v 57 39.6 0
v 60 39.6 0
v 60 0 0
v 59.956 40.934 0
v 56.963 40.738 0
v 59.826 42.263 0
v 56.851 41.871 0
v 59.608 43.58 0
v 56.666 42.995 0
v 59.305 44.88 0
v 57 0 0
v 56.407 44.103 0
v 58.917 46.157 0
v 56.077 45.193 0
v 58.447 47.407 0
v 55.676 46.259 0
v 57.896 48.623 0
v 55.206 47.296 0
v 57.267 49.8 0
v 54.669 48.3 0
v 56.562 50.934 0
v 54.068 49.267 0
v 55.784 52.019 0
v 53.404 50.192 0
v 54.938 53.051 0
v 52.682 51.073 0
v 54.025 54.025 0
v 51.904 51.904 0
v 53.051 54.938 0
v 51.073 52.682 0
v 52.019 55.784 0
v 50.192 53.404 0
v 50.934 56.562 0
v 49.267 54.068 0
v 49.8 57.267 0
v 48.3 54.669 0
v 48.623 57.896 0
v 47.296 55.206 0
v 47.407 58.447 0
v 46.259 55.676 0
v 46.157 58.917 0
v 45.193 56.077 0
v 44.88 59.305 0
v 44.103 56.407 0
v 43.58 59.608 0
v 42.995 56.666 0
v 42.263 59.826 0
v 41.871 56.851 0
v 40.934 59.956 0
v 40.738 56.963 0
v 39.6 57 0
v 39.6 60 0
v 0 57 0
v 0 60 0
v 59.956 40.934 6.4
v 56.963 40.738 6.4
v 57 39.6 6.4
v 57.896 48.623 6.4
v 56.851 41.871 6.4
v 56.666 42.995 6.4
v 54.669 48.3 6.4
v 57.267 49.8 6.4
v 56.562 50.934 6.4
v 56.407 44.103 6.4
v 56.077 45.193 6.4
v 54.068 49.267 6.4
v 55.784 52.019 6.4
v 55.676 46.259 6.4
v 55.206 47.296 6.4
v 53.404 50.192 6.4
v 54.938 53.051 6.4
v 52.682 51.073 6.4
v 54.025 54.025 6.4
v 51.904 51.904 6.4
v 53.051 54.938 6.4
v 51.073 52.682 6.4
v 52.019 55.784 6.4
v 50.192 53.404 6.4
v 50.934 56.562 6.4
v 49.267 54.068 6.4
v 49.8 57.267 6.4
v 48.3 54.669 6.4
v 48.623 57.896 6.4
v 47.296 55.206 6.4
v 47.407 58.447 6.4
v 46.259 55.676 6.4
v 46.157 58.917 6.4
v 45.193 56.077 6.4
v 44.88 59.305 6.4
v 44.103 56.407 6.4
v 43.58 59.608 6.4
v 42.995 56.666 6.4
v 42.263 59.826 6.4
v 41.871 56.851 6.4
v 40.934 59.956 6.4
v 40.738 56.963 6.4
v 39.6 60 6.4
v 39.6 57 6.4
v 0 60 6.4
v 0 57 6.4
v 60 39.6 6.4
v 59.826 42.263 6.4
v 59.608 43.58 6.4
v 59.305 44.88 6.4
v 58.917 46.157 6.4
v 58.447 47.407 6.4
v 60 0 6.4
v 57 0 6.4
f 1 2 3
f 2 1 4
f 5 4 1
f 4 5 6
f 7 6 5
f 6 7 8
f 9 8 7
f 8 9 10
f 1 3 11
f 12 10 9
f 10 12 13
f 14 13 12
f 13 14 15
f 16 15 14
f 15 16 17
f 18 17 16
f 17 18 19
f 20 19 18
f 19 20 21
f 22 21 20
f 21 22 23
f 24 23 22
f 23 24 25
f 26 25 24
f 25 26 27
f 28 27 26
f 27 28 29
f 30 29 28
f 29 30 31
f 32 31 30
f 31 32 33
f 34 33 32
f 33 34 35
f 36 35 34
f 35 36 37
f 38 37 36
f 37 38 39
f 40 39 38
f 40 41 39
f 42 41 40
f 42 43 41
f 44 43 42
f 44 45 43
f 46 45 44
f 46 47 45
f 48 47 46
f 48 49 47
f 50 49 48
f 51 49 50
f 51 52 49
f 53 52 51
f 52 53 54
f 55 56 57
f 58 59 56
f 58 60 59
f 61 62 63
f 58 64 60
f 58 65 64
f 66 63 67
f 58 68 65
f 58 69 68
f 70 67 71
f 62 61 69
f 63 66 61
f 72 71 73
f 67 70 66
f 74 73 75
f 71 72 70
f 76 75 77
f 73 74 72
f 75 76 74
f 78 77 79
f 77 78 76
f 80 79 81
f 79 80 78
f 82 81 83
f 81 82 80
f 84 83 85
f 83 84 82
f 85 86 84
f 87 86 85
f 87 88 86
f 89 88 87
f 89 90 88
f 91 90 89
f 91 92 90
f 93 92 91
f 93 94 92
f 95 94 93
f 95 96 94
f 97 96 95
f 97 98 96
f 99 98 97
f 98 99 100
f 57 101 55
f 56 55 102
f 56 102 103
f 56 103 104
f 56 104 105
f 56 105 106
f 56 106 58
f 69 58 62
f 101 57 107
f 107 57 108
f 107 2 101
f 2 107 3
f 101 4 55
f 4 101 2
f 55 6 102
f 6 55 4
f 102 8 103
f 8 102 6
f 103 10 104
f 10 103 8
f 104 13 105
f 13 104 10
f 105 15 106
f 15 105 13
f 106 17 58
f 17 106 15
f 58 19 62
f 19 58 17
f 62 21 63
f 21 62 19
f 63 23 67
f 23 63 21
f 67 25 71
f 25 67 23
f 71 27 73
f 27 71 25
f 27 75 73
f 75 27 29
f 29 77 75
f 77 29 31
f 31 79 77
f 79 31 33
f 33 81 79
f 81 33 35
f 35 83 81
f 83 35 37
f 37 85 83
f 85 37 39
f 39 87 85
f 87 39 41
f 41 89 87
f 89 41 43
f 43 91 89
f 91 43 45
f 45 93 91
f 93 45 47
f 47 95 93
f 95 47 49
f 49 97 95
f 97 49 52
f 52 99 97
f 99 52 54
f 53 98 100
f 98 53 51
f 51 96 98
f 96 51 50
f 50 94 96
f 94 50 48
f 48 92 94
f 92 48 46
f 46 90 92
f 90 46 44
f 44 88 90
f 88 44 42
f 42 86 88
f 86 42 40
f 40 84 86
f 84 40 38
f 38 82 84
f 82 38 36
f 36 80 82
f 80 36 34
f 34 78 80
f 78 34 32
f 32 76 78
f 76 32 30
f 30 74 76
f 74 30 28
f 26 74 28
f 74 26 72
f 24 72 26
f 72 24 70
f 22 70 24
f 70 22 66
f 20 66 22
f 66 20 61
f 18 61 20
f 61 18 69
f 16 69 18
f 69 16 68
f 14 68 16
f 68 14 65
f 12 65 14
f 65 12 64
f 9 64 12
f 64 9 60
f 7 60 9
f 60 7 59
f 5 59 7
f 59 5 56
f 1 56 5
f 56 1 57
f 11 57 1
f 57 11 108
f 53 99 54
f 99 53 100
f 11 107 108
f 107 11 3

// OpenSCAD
// Corner fit-check test piece, cut from the iPad Pro 12.9" skeleton frame.
// All four corners of the rounded-rect frame are identical, so ONE corner piece
// validates corner radius + clearance + wall for the whole frame. Cheap + fast.
// Snap it onto a real iPad corner to confirm fit before committing to the full part.

/* ---- must match ipad-frame.scad ---- */
ipad_w  = 280.6;
ipad_h  = 214.9;
ipad_d  = 6.4;
ipad_r  = 17;
clr   = 0.4;
wall  = 3.0;
band  = ipad_d;
$fn = 96;

leg = 60;   // how far the test piece extends along each edge from the corner

/* ---- derived (same as full frame) ---- */
in_w = ipad_w + 2*clr;
in_h = ipad_h + 2*clr;
in_r = ipad_r + clr;
out_w = in_w + 2*wall;
out_h = in_h + 2*wall;
out_r = in_r + wall;

module rrect(w, h, r) {
    hull()
        for (x = [-1, 1], y = [-1, 1])
            translate([x*(w/2 - r), y*(h/2 - r)])
                circle(r = r);
}

module frame_solid() {
    linear_extrude(height = band)
        difference() {
            rrect(out_w, out_h, out_r);
            rrect(in_w, in_h, in_r);
        }
}

// cut the +x/+y corner, then move it back to the origin for printing
translate([-(out_w/2 - leg), -(out_h/2 - leg), 0])
intersection() {
    frame_solid();
    translate([out_w/2 - leg, out_h/2 - leg, -1])
        cube([leg + 1, leg + 1, band + 2]);
}
